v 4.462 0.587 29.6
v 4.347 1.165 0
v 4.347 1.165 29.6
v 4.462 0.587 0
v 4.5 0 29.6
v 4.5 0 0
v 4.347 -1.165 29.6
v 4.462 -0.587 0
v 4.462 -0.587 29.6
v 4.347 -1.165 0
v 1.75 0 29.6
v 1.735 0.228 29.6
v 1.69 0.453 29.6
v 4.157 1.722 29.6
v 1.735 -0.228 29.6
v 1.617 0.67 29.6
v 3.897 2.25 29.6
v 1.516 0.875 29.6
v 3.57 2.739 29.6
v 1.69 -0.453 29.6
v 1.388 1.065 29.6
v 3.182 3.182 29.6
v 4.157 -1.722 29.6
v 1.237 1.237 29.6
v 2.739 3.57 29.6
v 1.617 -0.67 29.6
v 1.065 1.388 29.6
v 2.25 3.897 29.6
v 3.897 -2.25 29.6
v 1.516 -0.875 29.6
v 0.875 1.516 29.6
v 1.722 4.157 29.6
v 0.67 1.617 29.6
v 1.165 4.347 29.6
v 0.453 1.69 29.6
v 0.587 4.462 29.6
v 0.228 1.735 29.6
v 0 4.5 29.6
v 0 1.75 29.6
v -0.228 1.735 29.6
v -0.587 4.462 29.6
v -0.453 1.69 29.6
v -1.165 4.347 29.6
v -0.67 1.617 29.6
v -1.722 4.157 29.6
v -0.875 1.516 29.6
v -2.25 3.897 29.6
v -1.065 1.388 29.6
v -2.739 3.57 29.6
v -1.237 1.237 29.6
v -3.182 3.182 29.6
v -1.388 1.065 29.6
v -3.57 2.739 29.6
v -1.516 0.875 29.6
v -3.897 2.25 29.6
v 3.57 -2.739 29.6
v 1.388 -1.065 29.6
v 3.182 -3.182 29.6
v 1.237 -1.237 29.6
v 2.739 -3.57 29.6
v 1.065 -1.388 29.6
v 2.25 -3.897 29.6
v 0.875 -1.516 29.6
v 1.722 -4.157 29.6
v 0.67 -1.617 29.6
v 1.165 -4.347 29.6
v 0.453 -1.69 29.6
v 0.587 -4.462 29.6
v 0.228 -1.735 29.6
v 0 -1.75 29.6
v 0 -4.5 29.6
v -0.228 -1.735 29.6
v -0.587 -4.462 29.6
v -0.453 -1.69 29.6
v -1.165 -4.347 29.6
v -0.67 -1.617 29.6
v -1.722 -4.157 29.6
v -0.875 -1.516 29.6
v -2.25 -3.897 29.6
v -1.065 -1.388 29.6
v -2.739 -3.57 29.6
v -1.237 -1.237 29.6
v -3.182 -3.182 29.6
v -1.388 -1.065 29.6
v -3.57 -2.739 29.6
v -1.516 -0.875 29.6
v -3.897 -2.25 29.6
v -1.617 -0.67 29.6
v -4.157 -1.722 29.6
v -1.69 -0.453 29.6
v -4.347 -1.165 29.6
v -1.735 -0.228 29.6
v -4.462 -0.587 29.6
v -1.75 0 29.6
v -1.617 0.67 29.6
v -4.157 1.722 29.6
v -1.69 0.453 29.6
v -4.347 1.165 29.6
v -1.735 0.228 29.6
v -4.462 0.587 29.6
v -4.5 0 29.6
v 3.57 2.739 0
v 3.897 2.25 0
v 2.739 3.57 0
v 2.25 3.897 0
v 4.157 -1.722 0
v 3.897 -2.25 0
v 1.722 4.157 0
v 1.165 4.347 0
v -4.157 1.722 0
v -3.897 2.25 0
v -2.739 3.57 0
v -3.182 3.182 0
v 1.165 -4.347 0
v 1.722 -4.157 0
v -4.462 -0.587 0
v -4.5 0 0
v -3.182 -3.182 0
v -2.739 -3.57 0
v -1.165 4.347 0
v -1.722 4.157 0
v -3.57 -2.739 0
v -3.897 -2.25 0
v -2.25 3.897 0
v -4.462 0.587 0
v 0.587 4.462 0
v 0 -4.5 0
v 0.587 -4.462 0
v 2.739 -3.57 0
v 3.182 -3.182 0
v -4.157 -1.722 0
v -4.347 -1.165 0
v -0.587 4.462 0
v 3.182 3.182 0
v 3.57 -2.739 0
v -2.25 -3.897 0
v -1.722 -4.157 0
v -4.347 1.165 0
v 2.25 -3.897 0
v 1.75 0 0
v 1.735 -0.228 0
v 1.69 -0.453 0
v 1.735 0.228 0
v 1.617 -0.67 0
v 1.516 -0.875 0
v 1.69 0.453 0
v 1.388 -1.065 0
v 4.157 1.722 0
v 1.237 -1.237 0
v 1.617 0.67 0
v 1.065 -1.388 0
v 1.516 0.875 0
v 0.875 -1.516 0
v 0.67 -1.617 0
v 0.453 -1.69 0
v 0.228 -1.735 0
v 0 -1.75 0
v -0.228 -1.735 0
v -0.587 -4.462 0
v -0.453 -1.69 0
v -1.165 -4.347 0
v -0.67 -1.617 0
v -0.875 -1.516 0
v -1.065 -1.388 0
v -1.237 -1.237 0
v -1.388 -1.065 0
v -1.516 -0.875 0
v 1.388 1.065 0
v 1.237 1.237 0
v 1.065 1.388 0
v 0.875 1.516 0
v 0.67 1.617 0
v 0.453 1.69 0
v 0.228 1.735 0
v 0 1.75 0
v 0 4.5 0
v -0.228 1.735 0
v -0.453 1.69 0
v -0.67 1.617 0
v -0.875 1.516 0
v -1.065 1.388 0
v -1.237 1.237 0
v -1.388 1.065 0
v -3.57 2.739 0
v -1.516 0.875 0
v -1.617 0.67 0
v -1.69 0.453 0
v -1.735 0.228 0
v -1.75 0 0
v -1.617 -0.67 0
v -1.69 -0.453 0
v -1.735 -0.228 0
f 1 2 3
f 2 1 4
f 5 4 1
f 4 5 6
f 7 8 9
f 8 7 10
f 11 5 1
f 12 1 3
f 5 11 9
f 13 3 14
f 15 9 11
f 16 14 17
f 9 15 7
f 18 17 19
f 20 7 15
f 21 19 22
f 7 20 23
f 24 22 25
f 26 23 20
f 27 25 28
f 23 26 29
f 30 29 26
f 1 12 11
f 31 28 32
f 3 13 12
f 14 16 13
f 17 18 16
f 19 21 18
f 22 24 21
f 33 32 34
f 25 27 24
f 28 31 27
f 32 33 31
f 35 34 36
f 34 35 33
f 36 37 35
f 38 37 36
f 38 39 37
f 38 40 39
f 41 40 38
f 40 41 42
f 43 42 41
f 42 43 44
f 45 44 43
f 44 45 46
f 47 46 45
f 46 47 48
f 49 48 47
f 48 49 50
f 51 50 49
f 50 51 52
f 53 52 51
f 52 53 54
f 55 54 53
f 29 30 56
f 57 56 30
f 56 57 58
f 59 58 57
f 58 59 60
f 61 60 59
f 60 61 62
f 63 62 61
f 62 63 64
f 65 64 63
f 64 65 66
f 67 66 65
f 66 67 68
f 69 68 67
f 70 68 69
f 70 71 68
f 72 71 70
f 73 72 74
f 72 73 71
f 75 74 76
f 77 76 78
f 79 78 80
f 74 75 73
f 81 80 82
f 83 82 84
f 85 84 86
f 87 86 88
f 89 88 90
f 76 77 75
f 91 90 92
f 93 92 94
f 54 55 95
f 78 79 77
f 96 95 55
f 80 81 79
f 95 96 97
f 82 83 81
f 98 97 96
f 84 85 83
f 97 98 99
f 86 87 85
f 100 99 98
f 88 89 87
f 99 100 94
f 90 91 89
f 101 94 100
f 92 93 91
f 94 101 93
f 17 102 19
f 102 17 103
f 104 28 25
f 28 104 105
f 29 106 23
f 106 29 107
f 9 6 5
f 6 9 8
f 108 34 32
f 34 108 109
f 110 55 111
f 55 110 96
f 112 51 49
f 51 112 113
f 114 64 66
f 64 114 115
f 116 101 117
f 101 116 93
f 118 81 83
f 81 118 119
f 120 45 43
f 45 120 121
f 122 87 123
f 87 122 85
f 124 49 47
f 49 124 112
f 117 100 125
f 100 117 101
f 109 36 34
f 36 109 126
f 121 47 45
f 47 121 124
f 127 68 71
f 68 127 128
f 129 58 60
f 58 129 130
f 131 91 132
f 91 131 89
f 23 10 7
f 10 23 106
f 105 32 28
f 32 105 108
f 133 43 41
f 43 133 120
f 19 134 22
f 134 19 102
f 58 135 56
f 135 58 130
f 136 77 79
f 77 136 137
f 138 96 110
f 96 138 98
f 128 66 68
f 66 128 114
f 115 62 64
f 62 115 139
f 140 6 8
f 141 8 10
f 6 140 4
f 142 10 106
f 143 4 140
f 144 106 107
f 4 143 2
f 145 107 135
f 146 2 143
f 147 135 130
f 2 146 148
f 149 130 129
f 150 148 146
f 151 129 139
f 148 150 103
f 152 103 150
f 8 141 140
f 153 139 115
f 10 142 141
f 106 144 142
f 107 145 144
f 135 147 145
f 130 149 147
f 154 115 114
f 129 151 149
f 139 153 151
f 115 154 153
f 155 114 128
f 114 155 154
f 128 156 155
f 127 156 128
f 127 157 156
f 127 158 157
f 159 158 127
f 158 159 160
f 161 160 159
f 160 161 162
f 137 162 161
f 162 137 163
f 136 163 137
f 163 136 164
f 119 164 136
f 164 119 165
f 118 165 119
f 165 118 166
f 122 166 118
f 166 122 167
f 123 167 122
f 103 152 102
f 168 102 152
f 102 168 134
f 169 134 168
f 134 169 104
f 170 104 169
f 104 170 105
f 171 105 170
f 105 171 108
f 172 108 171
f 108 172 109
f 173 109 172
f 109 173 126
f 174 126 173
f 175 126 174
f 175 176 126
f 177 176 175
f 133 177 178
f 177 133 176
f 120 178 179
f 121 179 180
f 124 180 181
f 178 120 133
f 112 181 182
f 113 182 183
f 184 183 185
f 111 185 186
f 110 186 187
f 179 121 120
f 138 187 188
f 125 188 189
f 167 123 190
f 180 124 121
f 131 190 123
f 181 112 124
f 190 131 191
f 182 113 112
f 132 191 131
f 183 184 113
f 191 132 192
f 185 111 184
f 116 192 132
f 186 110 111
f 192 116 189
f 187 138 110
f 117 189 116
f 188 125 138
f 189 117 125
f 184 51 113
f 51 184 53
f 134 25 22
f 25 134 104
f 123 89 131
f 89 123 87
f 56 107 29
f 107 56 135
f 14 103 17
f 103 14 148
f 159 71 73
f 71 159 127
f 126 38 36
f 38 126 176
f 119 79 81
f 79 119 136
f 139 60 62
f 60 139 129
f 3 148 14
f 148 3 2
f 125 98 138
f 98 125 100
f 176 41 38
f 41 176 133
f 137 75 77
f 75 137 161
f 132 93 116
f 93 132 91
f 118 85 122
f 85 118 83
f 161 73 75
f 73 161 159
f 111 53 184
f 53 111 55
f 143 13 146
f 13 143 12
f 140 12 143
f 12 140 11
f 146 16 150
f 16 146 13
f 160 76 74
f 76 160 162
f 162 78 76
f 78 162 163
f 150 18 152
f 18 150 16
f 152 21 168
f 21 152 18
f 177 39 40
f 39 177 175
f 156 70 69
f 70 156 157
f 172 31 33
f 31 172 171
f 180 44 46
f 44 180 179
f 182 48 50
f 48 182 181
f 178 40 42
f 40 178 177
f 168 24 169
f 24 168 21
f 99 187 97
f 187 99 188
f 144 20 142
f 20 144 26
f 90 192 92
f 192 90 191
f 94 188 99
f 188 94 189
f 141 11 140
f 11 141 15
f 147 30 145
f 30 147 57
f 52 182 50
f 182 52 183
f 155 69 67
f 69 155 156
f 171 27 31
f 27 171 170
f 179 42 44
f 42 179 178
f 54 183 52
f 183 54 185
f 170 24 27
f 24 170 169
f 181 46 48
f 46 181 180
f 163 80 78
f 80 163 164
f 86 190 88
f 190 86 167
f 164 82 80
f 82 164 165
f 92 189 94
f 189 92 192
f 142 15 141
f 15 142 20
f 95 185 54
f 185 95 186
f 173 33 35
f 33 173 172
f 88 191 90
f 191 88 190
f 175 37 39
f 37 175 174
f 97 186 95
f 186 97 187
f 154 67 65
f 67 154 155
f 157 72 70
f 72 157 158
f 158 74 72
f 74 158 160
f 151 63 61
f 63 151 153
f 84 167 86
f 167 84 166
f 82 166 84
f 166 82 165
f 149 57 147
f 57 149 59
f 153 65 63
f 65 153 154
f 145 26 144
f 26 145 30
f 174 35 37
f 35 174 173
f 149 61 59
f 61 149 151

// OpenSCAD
// file: parameters.scad
// =============================================================================
// Gen-BL — nightly 2026-10-06 (physics_scorer, honest magpylib watts)
// Dense-wind, smaller gap: the wire budget (not the window) limits these machines, so the same ~367 m of 26 AWG is laid layer-by-layer at fill 0.65 into a SHORTER 8.1 mm window (vs 9.0 mm on Gen-BI) with a 17.1 mm build on 29–71 mm sector bobbins. That shrinks the magnet-to-magnet gap 11.6 → 10.7 mm, so every turn sees more flux. Rotors, Ø5 tight-assist map and Ø134 × 4.76 mm steel are identical to Gen-BI (modular: only bobbins, stator and gap sleeve change).
// Clocking 0 deg (magnets N facing S) + D-flat keyed bore + index notch + flip-symmetric hole map.
// Windable 2-piece bobbin; turns = physics_scorer turns_fit; copper only between flanges.
// Steel back-iron: 2× Ø134 × 4.76 mm (3/16") mild-steel discs (steel_backiron_disc.dxf); magnets sit ON the steel
// (through-pockets) -> score with --back-iron.
// =============================================================================
topology            = "dual_rotor";

// --- Wire / winding (physics_scorer winding-fit) -------------------------------
wire_awg            = 26;
wire_od             = 0.45;     // insulated OD mm (bare 0.405)
fill_realistic      = 0.65;     // insulated-wire area / window (DENSE layered wind with a jig; scorer cap 0.65)
turns               = 566;       // = physics_scorer turns_fit (do NOT raise)
coil_former_type    = "bobbin";
coil_core_inset     = 17.10;     // radial copper build: hub = copper boundary inset by this
wind_build_axial    = 0.0;      // nothing proud of the flanges
wind_build_radial   = 0.0;

// --- Bobbin (base + lid) ---------------------------------------------------------
coil_id_r           = 29.00;    // copper boundary sector
coil_od_r           = 71.00;
span_deg            = 52.68;    // = pitch - 2*asin((wall+0.85)/coil_id_r) -> >=1.2 mm stator web
former_web          = 8.10;     // copper height between flanges (TALL copper: steel keeps Bz up)
flange_t            = 0.80;     // >= 0.8 mm FDM wall rule (tall winds push on the flanges)
wall                = 1.00;     // flange lip beyond copper
former_bare_h       = former_web + 2 * flange_t;
coil_envelope_h     = former_bare_h + 2 * wind_build_axial;
tab_w               = 7.0;
tab_len             = 7.0;
tab_h               = former_bare_h / 2;
pin_d               = 1.9;      // 1.75 mm filament locating pin
coil_mount_r        = coil_od_r + 0.2 + 4.0;
lead_y              = 1.6;
lead_slot_w         = 0.9;
lead_groove_d       = 0.6;

// --- Gap -------------------------------------------------------------------------
run_clear           = 0.50;     // rotor face -> flange
gap_spacer_h        = run_clear + wind_build_axial;
m2m                 = coil_envelope_h + 2 * run_clear;   // rotor face to rotor face (= gap_sleeve length)

// --- Stator ----------------------------------------------------------------------
coil_stations       = 6;
bay_clear           = 0.25;
stator_thick        = former_bare_h;                        // bobbins flush both faces
stator_od           = 160;
shaft_clear_stator  = 14.0;     // stator is static; gap sleeve OD 12 spins inside

// --- Rotor(s) --------------------------------------------------------------------
magnet_Br           = 1.43;     // N52
magnet_d_large      = 20.0;
magnet_h_large      = 5.0;      // one O20x5 per pocket
magnet_h_small      = 5.0;      // one O5x5 per pocket
halbach_magnetisation = "diametric"; // O5x5 assist magnets MUST be DIAMETRICALLY magnetised (tangential)
rotor_b_same_axis   = true;     // same-index magnets share one axis: N faces S across the gap
large_pocket_d      = 20.3;
small_pocket_d      = 5.3;
pocket_h            = 5.10;     // THROUGH the carrier: magnet back face sits on the steel disc
large_n             = 8;
R_large             = 50.0;
R_small_inner       = 40.0;
R_small_mid         = 50.0;
R_small_outer       = 60.0;
small_r_list        = [R_small_inner, R_small_mid, R_small_outer];   // O5 pockets between poles
carrier_od          = 134.0;
carrier_thick       = pocket_h;
hub_h               = 12.0;     // > steel_t + insert: radial set-screw clears the steel
hub_od              = 24.0;     // slim hub so the M4 brace rods fit at R~18 inside the coil ring
hub_insert_d        = 4.0;      // M3 heat-set insert, radial, bears on the D-flat
rotor_b_offset_deg  = 0.0;      // CLOCKING: magnets directly opposite
shaft_key           = "dflat";
dflat_depth         = 0.5;      // 8 mm shaft with 0.5 mm flat (7.5 across flat)
index_notch_d       = 3.0;

// --- Steel back-iron (buyable laser-cut) -------------------------------------------
steel_t             = 4.76;      // mild steel thickness (image method ignores it; sized from steel_flux.py so the return path stays well below saturation)
steel_center_hole   = 26.0;     // slips over the rotor hub (OD 24)
steel_od            = carrier_od;   // steel disc OD = rotor carrier OD

// --- Modular MAX interface ----------------------------------------------------------
shaft_bore          = 8.35;
dflat_x             = 4.0 - dflat_depth + (shaft_bore - 8.0) / 2;
bearing_d           = 21.85;
bearing_h           = 7.2;
m3_clear            = 3.5;
bolt_r_inner        = 30.0;     // M3 steel-disc clamp bolts (inside the magnet ring)
bolt_n_inner        = 4;
bolt_inner_angles   = [0, 90, 180, 270];
bolt_r_outer        = 63.0;     // M3 steel-disc clamp bolts (outside the magnet ring)
bolt_outer_angles   = [45, 135, 225, 315];
flange_bolt_r       = 73.0;     // frame rods: OUTSIDE the rotor OD (rotors spin inside them)
flange_bolt_n       = 6;
flange_bolt_offset  = 30.00;    // between coil stations -> never cuts a lead groove/tab
brace_r             = 18.0;
brace_d             = 4.3;      // temporary M4 jack rods (assembly only)
brace_n             = 4;
brace_angles        = [45, 135, 225, 315];          // flip-symmetric

spacer_pad_od       = 14.0;
spacer_pad_id       = m3_clear;
endbell_od          = 160;
endbell_thick       = 8.0;
endbell_shaft_clear = 10.0;
collar_h            = 10.0;
standoff_od         = 9.0;
frame_standoff_h    = run_clear + carrier_thick + hub_h + collar_h + 2.0;
sleeve_od           = 12.0;
plate_max_mm        = 410;

$fn = 64;
// main file
// Gen-BL — frame standoff tube between stator and an endbell, on each M3 frame rod (outside rotor OD).
// Print x12. Height = frame_standoff_h (rotor + steel + hub + collar + running clearance).
include <parameters.scad>;
$fn = 48;
difference() {
    cylinder(d=standoff_od, h=frame_standoff_h);
    translate([0, 0, -0.1]) cylinder(d=m3_clear, h=frame_standoff_h + 0.2);
}
